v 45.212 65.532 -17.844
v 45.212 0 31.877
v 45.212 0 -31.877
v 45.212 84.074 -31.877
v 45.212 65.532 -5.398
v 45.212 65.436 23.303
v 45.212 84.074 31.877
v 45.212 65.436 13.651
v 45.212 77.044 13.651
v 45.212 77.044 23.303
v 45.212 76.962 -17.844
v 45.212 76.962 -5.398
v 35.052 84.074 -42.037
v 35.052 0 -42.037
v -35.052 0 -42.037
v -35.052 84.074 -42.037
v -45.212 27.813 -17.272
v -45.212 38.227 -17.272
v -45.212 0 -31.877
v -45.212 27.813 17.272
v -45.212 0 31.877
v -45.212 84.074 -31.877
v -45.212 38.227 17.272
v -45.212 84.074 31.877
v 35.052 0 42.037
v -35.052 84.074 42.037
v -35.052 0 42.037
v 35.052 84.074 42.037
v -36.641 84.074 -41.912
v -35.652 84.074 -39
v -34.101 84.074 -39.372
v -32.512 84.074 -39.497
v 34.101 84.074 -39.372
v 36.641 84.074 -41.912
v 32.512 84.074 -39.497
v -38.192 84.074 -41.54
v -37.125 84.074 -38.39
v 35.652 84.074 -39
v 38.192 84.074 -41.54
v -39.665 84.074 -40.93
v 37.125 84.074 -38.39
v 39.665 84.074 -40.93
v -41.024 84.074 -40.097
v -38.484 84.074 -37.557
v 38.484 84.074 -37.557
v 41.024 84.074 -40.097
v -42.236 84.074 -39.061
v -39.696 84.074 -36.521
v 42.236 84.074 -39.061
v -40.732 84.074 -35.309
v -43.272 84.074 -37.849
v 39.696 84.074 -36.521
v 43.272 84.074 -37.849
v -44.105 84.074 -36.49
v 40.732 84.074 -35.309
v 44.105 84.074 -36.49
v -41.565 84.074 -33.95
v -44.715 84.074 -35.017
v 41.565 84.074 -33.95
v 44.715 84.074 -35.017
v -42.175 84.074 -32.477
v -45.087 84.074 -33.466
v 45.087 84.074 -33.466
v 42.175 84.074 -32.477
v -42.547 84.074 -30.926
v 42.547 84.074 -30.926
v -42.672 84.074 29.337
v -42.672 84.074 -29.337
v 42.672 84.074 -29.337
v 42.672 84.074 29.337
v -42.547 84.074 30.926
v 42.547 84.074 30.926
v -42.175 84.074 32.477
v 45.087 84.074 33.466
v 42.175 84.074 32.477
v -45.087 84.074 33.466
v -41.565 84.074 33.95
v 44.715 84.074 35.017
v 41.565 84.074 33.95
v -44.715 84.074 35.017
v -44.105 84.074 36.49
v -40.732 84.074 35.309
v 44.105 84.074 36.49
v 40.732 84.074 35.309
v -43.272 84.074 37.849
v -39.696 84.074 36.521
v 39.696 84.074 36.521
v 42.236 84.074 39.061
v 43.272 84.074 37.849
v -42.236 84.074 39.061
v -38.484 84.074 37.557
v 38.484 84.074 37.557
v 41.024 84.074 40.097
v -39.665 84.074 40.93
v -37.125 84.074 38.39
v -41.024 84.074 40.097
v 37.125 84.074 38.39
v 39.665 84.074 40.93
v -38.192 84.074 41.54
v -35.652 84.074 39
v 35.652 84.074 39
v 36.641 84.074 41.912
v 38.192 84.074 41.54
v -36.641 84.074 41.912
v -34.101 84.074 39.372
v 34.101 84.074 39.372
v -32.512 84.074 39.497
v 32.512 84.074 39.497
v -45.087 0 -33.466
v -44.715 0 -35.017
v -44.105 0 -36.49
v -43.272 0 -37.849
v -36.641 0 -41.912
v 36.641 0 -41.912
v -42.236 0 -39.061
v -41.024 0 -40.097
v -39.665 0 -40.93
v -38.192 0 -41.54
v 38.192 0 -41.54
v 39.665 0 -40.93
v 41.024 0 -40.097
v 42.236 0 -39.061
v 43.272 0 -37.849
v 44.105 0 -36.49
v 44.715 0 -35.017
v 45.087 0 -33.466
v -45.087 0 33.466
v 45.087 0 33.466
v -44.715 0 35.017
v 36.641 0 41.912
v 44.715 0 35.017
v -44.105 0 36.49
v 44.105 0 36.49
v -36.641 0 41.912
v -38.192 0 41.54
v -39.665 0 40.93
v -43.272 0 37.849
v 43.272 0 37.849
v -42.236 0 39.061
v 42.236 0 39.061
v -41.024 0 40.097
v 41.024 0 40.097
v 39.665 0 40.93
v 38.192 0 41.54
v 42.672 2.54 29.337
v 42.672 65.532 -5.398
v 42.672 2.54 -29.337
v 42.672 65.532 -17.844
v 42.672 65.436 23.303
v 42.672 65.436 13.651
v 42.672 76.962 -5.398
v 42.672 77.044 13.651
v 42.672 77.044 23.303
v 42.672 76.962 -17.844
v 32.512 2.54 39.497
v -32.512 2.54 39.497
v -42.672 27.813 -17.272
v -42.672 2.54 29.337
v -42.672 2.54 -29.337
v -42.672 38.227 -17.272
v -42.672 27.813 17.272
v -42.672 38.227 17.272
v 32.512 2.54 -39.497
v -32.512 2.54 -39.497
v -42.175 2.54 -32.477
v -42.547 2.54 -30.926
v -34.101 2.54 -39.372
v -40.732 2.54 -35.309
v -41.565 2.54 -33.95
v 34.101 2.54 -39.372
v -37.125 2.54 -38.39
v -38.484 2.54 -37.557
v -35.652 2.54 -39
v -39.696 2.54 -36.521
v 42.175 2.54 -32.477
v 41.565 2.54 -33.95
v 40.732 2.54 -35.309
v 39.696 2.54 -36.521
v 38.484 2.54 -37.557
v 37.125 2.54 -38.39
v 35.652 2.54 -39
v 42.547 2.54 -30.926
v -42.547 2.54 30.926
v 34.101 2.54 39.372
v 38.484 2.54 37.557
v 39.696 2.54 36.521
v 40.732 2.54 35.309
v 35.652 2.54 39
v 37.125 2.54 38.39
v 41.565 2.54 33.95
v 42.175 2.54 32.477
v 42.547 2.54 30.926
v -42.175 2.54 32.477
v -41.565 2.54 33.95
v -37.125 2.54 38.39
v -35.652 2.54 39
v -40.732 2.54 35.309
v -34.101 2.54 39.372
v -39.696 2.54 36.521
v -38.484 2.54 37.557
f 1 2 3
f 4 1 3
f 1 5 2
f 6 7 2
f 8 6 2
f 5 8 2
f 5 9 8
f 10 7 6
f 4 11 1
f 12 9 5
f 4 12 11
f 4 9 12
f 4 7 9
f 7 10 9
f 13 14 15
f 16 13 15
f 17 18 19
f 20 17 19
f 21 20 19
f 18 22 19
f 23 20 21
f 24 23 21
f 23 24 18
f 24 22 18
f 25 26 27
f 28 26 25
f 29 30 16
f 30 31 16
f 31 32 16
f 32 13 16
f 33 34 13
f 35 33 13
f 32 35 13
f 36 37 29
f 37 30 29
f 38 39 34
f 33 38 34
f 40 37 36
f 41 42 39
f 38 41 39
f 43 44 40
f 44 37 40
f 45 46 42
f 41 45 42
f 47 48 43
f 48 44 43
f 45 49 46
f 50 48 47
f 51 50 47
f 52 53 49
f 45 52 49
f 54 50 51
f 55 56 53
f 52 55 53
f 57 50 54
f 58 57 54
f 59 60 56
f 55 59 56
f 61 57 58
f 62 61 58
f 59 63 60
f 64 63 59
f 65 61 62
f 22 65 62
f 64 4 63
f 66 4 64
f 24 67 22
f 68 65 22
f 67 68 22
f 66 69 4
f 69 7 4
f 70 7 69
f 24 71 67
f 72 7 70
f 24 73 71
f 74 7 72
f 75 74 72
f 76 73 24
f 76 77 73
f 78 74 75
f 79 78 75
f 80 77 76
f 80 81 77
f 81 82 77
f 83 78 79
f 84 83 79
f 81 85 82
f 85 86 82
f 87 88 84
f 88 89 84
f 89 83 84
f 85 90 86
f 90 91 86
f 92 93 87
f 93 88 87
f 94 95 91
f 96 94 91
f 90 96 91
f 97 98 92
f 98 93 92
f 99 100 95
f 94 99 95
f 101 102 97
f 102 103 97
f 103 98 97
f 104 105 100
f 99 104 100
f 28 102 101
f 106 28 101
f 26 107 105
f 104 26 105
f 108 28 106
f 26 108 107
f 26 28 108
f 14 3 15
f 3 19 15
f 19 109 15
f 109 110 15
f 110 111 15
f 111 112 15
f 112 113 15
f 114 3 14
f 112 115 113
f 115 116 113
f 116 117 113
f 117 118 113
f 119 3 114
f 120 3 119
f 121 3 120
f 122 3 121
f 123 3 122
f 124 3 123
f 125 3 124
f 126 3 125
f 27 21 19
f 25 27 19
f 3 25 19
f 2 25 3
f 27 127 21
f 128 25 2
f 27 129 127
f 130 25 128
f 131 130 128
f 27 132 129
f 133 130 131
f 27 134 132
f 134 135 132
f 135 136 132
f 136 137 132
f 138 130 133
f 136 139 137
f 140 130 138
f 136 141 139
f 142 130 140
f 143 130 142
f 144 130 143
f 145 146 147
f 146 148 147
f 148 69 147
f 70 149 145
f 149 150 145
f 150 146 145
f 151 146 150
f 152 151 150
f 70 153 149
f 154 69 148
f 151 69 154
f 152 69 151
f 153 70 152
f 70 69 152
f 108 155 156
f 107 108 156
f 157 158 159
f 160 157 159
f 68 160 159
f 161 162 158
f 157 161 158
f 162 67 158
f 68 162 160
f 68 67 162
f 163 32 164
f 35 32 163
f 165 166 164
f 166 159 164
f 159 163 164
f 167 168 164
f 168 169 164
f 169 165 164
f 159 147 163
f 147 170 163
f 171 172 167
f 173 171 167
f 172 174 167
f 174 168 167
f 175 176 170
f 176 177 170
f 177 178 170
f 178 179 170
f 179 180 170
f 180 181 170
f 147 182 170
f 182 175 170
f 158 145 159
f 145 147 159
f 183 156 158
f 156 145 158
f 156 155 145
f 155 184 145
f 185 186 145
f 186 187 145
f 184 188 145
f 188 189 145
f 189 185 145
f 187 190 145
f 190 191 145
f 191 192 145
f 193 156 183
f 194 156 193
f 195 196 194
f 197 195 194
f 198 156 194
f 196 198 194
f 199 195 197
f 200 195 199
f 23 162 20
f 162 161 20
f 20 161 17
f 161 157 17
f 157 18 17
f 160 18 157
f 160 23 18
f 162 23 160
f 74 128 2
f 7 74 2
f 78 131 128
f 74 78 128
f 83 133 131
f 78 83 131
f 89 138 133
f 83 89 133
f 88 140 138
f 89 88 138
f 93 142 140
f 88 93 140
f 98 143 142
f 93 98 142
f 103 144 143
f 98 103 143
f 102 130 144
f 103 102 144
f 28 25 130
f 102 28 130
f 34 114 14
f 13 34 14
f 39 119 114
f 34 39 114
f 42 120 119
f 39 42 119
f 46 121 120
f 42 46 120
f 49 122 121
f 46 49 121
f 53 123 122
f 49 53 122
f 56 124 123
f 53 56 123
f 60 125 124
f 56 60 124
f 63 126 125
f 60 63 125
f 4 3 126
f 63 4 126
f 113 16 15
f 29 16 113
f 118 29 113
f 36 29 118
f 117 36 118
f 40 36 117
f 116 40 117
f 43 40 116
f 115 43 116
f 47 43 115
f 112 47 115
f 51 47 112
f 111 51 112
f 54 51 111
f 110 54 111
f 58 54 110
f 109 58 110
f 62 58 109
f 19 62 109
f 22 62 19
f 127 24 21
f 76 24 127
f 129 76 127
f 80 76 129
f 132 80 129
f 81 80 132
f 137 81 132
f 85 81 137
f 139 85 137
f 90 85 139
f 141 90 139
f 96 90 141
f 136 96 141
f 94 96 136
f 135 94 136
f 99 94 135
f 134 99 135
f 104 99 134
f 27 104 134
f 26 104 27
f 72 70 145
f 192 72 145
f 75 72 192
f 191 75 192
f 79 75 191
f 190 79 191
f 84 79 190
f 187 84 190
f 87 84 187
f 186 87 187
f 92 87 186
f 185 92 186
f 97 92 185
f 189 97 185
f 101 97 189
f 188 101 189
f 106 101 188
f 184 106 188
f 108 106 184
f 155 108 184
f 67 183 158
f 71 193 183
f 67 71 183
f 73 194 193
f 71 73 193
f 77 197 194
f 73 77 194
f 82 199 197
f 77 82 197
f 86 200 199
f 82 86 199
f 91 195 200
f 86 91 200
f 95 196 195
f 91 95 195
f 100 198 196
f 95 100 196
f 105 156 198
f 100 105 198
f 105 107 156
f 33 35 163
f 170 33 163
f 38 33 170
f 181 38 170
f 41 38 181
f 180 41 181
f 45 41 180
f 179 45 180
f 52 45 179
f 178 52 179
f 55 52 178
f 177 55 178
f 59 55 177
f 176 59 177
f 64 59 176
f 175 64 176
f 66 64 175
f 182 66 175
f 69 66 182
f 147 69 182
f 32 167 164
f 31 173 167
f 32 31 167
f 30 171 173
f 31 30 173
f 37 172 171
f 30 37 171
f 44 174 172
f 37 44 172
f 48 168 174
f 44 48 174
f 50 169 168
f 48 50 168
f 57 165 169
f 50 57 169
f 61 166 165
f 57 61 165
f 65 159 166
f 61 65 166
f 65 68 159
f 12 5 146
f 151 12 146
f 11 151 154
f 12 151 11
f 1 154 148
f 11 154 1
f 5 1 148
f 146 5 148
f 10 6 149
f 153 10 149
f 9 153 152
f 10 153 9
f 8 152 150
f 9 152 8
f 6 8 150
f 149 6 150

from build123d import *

# Parameters (mm, degrees)
SKETCH1_W           = 90.424
SKETCH1_H           = 84.074
BOSS_EXTRUDE1_DEPTH = 84.074
SKETCH3_W           = 85.344
SKETCH3_H           = 78.994
CUT_EXTRUDE1_DEPTH  = 81.534
SKETCH5_W           = 34.544
SKETCH5_H           = 10.414
CUT_EXTRUDE3_DEPTH  = 7.62
FILLET1_R           = 10.16
SKETCH6_W           = 9.652
SKETCH6_H           = 11.608529125
SKETCH6_W_2         = 12.446
SKETCH6_H_2         = 11.43
CUT_EXTRUDE4_DEPTH  = 5.08


with BuildPart() as part:
    # Sketch1 → Boss-Extrude1 (new body)
    with BuildSketch(Plane(origin=(0, 0, 0), x_dir=(1, 0, 0), z_dir=(0, 1, 0))):
        Rectangle(SKETCH1_W, SKETCH1_H)
    extrude(amount=BOSS_EXTRUDE1_DEPTH)

    # Sketch3 → Cut-Extrude1 (cut)
    with BuildSketch(Plane(origin=(0, 84.074, 0), x_dir=(1, 0, 0), z_dir=(0, 1, 0))):
        Rectangle(SKETCH3_W, SKETCH3_H)
    extrude(amount=-CUT_EXTRUDE1_DEPTH, mode=Mode.SUBTRACT)

    # Sketch5 → Cut-Extrude3 (cut)
    with BuildSketch(Plane.ZY.offset(45.212)):
        with Locations((0, 33.02)):
            Rectangle(SKETCH5_W, SKETCH5_H)
    extrude(amount=-CUT_EXTRUDE3_DEPTH, mode=Mode.SUBTRACT)

    # Fillet1
    fillet1_edges = [part.edges().sort_by_distance(p)[0] for p in [
        (42.672, 43.307, -39.497),
        (42.672, 43.307, 39.497),
        (-42.672, 43.307, 39.497),
        (-42.672, 43.307, -39.497),
        (45.212, 42.037, 42.037),
        (-45.212, 42.037, 42.037),
        (-45.212, 42.037, -42.037),
        (45.212, 42.037, -42.037),
    ]]
    fillet(fillet1_edges, radius=FILLET1_R)

    # Sketch6 → Cut-Extrude4 (cut)
    with BuildSketch(Plane(origin=(45.212, 0, 0), x_dir=(0, 0, -1), z_dir=(1, 0, 0))):
        with Locations((-18.477409208, 71.239969556)):
            Rectangle(SKETCH6_W, SKETCH6_H)
        with Locations((11.621294262, 71.24718083)):
            Rectangle(SKETCH6_W_2, SKETCH6_H_2)
    extrude(amount=-CUT_EXTRUDE4_DEPTH, mode=Mode.SUBTRACT)


solid = part.part
